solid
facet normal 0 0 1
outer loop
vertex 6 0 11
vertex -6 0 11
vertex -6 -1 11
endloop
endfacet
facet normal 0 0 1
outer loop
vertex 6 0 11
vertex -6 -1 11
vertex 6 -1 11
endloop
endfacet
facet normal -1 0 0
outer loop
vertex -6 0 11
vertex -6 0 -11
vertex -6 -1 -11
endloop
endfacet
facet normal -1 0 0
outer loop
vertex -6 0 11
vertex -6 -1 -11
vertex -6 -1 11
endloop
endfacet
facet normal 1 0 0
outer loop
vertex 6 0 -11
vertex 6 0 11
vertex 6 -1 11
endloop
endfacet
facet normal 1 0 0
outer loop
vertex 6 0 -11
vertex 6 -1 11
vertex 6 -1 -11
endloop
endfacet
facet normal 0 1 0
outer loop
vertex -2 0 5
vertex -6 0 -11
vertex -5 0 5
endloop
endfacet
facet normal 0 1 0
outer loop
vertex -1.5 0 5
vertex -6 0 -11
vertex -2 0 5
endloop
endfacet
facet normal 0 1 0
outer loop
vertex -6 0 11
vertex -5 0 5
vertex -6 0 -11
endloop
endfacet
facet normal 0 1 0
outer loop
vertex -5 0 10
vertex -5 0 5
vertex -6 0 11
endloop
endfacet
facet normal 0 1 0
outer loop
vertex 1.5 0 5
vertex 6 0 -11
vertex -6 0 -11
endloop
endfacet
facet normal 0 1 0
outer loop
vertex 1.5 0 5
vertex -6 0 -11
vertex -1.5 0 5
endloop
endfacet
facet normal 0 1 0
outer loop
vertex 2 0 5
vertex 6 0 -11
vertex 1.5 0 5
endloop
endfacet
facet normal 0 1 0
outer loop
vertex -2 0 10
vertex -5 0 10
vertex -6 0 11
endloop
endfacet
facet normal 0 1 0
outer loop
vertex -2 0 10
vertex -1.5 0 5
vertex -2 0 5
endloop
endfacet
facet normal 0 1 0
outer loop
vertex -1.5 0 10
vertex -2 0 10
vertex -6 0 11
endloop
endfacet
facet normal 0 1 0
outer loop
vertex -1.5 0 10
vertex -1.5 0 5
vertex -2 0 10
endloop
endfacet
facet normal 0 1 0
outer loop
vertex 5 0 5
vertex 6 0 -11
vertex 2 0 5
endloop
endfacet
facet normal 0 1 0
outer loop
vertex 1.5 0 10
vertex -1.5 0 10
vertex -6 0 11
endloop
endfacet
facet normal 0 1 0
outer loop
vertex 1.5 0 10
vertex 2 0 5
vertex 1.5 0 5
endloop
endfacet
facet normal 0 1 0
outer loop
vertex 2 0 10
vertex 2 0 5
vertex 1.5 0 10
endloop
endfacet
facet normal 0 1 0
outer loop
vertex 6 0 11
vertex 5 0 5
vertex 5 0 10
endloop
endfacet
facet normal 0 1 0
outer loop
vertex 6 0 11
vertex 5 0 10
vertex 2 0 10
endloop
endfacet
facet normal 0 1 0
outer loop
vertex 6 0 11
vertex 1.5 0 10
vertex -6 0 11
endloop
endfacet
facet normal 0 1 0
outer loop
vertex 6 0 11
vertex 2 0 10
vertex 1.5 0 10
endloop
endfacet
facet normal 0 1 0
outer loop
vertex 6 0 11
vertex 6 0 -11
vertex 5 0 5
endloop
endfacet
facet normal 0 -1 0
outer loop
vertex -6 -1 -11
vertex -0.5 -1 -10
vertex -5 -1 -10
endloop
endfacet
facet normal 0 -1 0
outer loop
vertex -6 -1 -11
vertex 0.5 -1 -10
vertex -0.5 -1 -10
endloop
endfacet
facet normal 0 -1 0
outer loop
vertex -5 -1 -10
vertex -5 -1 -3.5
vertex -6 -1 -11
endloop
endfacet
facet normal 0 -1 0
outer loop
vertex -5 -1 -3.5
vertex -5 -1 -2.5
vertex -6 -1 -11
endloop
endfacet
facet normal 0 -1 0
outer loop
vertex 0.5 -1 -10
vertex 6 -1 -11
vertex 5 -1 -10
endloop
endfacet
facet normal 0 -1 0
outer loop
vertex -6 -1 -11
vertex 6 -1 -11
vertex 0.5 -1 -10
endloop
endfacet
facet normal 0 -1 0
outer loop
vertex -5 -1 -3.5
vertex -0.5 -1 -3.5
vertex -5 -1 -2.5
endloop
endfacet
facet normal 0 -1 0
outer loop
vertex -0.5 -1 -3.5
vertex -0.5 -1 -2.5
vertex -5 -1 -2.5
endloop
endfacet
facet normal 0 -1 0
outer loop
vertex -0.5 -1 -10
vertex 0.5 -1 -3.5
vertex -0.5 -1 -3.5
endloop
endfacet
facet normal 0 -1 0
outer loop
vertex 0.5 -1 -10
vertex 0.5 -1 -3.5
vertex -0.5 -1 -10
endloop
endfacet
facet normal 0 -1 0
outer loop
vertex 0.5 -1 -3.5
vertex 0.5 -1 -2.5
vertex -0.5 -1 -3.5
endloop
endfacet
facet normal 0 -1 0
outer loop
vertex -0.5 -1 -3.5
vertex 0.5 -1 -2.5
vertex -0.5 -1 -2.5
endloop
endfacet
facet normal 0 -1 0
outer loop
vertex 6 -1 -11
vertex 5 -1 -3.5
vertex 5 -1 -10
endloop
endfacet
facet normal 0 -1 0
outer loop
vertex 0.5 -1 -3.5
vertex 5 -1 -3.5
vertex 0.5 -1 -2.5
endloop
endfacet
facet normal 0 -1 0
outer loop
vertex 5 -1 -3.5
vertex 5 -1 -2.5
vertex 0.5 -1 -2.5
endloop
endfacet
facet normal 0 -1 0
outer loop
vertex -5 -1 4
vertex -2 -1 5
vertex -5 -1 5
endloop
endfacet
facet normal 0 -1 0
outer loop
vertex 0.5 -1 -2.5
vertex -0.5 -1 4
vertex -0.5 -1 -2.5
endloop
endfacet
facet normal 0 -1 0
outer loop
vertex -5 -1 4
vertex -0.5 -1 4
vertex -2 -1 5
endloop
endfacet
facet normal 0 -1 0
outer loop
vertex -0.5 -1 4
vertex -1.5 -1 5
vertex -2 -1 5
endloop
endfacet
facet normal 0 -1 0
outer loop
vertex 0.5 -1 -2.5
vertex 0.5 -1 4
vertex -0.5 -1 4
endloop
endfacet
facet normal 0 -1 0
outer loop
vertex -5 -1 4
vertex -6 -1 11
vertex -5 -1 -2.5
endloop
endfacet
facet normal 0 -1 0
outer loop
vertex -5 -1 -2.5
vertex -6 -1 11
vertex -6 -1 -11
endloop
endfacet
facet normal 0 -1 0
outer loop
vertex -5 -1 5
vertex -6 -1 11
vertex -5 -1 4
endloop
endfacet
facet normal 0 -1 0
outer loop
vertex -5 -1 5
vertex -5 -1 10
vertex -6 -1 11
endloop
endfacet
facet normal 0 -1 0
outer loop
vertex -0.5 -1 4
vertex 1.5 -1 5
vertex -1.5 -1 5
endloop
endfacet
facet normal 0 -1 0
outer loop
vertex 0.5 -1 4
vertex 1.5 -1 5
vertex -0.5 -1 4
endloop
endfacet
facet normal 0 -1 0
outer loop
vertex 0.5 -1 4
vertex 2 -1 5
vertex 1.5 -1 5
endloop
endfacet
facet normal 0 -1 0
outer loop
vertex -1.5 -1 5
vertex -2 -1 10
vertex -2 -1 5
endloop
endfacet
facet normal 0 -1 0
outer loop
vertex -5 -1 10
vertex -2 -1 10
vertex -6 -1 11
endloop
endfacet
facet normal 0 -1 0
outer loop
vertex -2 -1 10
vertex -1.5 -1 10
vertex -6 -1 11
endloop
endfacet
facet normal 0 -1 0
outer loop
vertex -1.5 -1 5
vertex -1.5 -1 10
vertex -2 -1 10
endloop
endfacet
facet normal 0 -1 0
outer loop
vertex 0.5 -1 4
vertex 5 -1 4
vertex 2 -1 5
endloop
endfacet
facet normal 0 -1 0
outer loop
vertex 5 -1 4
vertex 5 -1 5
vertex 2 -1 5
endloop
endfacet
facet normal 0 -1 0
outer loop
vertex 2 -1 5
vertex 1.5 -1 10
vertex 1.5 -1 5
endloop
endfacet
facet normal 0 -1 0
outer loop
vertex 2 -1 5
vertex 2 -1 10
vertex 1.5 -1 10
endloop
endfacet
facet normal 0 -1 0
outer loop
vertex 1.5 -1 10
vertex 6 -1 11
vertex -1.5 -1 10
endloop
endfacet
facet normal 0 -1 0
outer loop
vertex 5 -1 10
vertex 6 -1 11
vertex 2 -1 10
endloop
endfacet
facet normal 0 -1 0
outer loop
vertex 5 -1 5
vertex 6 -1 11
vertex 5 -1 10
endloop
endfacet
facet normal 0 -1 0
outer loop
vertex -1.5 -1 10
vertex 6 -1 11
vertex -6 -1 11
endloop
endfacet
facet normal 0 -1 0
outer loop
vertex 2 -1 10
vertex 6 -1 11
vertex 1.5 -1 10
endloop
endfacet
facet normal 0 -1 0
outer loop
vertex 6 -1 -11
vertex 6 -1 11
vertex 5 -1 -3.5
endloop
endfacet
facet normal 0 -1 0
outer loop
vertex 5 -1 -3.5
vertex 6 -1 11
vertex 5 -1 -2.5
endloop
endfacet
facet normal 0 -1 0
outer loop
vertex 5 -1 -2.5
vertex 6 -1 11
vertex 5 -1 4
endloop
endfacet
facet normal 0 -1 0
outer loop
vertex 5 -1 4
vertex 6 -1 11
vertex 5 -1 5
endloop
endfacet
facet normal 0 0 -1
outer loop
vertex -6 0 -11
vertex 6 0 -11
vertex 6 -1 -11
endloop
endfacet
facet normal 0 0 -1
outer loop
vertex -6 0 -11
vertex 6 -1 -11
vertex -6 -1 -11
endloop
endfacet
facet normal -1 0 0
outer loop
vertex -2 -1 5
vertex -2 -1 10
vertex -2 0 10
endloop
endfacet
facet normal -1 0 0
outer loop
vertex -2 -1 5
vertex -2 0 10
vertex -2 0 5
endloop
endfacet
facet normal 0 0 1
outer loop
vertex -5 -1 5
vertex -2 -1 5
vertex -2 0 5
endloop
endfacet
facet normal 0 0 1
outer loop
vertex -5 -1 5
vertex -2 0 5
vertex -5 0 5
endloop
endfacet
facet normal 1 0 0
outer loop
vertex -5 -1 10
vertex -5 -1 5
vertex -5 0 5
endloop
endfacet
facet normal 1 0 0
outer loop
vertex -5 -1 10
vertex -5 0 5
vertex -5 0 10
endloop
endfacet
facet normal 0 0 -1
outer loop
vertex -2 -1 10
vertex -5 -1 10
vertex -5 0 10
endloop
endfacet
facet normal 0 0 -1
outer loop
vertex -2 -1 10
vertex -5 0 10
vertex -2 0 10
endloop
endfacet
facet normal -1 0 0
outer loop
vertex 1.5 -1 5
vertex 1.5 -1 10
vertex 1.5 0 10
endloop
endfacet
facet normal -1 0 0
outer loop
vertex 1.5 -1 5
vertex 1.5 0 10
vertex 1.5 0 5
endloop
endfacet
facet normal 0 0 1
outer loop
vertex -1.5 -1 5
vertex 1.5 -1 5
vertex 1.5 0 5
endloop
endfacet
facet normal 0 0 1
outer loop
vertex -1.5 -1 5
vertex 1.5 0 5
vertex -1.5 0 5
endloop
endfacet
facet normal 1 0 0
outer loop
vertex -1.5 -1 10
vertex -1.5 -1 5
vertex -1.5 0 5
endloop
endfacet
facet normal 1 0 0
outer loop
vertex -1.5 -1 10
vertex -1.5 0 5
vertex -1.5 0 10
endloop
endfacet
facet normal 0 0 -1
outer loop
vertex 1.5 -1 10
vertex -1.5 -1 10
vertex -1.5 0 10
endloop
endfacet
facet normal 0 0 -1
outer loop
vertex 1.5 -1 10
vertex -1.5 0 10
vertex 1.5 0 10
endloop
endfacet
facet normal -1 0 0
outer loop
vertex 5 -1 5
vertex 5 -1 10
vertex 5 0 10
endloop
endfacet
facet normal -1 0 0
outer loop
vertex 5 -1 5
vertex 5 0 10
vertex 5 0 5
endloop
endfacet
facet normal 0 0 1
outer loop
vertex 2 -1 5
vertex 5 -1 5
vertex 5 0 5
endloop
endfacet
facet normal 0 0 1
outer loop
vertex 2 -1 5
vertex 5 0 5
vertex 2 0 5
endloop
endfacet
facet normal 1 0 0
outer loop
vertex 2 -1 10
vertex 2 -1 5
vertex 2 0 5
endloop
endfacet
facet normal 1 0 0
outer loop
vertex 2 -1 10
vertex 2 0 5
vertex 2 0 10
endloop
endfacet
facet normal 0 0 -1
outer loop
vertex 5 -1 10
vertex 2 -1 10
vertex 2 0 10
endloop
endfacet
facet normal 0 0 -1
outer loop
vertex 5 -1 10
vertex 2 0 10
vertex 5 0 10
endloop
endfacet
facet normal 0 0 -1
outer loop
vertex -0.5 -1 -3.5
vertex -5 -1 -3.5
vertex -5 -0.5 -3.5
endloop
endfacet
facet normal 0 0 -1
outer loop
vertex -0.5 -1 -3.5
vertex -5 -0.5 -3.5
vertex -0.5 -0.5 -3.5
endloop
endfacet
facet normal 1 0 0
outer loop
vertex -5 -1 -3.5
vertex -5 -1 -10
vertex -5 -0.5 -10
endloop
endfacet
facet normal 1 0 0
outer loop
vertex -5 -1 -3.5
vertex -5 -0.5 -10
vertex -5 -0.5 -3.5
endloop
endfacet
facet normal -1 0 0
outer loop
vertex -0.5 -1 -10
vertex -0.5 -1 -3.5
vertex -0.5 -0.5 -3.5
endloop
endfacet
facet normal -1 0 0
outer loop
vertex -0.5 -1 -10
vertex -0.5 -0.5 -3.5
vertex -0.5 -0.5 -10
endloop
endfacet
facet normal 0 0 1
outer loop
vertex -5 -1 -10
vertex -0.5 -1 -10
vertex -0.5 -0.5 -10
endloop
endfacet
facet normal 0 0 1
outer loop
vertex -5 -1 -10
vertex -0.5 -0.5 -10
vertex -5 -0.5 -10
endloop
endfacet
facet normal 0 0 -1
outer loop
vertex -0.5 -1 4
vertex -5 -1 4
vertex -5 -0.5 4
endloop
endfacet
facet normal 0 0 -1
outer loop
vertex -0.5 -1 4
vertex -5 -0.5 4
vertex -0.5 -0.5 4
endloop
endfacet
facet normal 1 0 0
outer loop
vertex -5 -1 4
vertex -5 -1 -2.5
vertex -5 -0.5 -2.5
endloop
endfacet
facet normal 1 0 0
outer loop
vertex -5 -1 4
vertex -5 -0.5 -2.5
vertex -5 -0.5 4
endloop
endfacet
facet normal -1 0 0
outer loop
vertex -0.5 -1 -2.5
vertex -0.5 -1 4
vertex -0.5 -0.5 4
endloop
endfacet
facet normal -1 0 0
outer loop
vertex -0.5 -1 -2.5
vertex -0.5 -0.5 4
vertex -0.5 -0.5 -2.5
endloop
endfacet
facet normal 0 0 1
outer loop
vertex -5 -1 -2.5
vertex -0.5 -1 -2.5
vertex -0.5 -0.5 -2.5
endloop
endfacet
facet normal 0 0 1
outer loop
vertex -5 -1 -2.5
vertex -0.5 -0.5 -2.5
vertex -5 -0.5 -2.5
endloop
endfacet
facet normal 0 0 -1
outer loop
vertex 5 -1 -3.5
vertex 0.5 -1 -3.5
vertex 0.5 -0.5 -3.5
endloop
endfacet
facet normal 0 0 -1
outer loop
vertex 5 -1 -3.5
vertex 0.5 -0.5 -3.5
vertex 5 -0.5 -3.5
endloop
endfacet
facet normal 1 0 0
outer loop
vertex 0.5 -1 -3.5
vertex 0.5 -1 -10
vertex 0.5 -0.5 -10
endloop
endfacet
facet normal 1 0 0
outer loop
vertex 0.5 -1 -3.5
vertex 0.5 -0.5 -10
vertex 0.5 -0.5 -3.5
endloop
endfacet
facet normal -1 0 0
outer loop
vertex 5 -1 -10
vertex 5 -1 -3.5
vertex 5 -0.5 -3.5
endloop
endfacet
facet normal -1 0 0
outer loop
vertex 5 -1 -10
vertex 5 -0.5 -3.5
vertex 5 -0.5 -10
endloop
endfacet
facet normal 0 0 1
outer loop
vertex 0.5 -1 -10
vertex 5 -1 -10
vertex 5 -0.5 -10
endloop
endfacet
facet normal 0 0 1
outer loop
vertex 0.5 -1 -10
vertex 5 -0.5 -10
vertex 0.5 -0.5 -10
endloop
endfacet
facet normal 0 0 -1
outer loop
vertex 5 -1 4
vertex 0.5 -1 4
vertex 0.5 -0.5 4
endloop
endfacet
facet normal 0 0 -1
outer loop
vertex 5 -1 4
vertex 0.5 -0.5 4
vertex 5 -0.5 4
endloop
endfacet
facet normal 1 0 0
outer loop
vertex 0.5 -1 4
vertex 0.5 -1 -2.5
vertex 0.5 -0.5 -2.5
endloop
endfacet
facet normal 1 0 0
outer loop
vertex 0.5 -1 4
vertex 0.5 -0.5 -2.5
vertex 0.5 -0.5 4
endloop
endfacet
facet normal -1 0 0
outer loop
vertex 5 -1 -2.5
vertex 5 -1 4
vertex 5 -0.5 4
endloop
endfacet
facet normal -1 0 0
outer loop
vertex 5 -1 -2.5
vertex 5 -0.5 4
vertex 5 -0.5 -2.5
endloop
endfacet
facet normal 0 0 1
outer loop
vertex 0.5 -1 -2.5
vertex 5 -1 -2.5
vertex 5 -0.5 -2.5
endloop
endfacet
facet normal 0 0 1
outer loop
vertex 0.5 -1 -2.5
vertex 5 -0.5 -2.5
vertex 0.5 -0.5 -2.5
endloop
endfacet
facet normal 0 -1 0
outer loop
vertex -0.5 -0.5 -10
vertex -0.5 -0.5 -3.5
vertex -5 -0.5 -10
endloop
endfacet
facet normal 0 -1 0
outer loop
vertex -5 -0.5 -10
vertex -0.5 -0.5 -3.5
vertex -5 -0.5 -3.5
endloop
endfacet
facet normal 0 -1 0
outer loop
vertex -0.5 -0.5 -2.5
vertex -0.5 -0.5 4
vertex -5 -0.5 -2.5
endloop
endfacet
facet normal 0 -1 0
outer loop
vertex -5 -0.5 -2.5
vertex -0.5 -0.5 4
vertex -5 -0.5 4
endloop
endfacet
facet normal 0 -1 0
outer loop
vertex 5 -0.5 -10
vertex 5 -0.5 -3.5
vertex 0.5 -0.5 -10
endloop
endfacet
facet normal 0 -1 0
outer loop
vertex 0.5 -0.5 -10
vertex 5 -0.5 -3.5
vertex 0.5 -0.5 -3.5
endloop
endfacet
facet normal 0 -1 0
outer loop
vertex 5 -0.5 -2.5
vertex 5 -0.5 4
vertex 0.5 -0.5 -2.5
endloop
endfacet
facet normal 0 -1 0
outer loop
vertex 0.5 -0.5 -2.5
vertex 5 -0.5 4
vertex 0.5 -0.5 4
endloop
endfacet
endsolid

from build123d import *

# Parameters (mm, degrees)
SKETCH_W        = 12
SKETCH_H        = 22
PAD_DEPTH       = 1
SKETCH001_W     = 4.5
SKETCH001_H     = 6.5
POCKET_DEPTH    = 0.5
SKETCH002_W     = 3
SKETCH002_H     = 5
POCKET001_DEPTH = 5


with BuildPart() as part:
    # Sketch → Pad (new body)
    with BuildSketch(Plane.XZ):
        Rectangle(SKETCH_W, SKETCH_H)
    extrude(amount=PAD_DEPTH)

    # Sketch001 (on Face6 of Pad) → Pocket (cut)
    with BuildSketch(Plane.XZ.offset(1)):
        with Locations((-2.75, -6.75)):
            Rectangle(SKETCH001_W, SKETCH001_H)
        with Locations((2.75, -6.75)):
            Rectangle(SKETCH001_W, SKETCH001_H)
        with Locations((-2.75, 0.75)):
            Rectangle(SKETCH001_W, SKETCH001_H)
        with Locations((2.75, 0.75)):
            Rectangle(SKETCH001_W, SKETCH001_H)
    extrude(amount=-POCKET_DEPTH, mode=Mode.SUBTRACT)

    # Sketch002 (on Face5 of Pocket) → Pocket001 (cut)
    with BuildSketch(Plane.XZ.offset(1)):
        with Locations((-3.5, 7.5)):
            Rectangle(SKETCH002_W, SKETCH002_H)
        with Locations((0, 7.5)):
            Rectangle(SKETCH002_W, SKETCH002_H)
        with Locations((3.5, 7.5)):
            Rectangle(SKETCH002_W, SKETCH002_H)
    extrude(amount=-POCKET001_DEPTH, mode=Mode.SUBTRACT)


solid = part.part
